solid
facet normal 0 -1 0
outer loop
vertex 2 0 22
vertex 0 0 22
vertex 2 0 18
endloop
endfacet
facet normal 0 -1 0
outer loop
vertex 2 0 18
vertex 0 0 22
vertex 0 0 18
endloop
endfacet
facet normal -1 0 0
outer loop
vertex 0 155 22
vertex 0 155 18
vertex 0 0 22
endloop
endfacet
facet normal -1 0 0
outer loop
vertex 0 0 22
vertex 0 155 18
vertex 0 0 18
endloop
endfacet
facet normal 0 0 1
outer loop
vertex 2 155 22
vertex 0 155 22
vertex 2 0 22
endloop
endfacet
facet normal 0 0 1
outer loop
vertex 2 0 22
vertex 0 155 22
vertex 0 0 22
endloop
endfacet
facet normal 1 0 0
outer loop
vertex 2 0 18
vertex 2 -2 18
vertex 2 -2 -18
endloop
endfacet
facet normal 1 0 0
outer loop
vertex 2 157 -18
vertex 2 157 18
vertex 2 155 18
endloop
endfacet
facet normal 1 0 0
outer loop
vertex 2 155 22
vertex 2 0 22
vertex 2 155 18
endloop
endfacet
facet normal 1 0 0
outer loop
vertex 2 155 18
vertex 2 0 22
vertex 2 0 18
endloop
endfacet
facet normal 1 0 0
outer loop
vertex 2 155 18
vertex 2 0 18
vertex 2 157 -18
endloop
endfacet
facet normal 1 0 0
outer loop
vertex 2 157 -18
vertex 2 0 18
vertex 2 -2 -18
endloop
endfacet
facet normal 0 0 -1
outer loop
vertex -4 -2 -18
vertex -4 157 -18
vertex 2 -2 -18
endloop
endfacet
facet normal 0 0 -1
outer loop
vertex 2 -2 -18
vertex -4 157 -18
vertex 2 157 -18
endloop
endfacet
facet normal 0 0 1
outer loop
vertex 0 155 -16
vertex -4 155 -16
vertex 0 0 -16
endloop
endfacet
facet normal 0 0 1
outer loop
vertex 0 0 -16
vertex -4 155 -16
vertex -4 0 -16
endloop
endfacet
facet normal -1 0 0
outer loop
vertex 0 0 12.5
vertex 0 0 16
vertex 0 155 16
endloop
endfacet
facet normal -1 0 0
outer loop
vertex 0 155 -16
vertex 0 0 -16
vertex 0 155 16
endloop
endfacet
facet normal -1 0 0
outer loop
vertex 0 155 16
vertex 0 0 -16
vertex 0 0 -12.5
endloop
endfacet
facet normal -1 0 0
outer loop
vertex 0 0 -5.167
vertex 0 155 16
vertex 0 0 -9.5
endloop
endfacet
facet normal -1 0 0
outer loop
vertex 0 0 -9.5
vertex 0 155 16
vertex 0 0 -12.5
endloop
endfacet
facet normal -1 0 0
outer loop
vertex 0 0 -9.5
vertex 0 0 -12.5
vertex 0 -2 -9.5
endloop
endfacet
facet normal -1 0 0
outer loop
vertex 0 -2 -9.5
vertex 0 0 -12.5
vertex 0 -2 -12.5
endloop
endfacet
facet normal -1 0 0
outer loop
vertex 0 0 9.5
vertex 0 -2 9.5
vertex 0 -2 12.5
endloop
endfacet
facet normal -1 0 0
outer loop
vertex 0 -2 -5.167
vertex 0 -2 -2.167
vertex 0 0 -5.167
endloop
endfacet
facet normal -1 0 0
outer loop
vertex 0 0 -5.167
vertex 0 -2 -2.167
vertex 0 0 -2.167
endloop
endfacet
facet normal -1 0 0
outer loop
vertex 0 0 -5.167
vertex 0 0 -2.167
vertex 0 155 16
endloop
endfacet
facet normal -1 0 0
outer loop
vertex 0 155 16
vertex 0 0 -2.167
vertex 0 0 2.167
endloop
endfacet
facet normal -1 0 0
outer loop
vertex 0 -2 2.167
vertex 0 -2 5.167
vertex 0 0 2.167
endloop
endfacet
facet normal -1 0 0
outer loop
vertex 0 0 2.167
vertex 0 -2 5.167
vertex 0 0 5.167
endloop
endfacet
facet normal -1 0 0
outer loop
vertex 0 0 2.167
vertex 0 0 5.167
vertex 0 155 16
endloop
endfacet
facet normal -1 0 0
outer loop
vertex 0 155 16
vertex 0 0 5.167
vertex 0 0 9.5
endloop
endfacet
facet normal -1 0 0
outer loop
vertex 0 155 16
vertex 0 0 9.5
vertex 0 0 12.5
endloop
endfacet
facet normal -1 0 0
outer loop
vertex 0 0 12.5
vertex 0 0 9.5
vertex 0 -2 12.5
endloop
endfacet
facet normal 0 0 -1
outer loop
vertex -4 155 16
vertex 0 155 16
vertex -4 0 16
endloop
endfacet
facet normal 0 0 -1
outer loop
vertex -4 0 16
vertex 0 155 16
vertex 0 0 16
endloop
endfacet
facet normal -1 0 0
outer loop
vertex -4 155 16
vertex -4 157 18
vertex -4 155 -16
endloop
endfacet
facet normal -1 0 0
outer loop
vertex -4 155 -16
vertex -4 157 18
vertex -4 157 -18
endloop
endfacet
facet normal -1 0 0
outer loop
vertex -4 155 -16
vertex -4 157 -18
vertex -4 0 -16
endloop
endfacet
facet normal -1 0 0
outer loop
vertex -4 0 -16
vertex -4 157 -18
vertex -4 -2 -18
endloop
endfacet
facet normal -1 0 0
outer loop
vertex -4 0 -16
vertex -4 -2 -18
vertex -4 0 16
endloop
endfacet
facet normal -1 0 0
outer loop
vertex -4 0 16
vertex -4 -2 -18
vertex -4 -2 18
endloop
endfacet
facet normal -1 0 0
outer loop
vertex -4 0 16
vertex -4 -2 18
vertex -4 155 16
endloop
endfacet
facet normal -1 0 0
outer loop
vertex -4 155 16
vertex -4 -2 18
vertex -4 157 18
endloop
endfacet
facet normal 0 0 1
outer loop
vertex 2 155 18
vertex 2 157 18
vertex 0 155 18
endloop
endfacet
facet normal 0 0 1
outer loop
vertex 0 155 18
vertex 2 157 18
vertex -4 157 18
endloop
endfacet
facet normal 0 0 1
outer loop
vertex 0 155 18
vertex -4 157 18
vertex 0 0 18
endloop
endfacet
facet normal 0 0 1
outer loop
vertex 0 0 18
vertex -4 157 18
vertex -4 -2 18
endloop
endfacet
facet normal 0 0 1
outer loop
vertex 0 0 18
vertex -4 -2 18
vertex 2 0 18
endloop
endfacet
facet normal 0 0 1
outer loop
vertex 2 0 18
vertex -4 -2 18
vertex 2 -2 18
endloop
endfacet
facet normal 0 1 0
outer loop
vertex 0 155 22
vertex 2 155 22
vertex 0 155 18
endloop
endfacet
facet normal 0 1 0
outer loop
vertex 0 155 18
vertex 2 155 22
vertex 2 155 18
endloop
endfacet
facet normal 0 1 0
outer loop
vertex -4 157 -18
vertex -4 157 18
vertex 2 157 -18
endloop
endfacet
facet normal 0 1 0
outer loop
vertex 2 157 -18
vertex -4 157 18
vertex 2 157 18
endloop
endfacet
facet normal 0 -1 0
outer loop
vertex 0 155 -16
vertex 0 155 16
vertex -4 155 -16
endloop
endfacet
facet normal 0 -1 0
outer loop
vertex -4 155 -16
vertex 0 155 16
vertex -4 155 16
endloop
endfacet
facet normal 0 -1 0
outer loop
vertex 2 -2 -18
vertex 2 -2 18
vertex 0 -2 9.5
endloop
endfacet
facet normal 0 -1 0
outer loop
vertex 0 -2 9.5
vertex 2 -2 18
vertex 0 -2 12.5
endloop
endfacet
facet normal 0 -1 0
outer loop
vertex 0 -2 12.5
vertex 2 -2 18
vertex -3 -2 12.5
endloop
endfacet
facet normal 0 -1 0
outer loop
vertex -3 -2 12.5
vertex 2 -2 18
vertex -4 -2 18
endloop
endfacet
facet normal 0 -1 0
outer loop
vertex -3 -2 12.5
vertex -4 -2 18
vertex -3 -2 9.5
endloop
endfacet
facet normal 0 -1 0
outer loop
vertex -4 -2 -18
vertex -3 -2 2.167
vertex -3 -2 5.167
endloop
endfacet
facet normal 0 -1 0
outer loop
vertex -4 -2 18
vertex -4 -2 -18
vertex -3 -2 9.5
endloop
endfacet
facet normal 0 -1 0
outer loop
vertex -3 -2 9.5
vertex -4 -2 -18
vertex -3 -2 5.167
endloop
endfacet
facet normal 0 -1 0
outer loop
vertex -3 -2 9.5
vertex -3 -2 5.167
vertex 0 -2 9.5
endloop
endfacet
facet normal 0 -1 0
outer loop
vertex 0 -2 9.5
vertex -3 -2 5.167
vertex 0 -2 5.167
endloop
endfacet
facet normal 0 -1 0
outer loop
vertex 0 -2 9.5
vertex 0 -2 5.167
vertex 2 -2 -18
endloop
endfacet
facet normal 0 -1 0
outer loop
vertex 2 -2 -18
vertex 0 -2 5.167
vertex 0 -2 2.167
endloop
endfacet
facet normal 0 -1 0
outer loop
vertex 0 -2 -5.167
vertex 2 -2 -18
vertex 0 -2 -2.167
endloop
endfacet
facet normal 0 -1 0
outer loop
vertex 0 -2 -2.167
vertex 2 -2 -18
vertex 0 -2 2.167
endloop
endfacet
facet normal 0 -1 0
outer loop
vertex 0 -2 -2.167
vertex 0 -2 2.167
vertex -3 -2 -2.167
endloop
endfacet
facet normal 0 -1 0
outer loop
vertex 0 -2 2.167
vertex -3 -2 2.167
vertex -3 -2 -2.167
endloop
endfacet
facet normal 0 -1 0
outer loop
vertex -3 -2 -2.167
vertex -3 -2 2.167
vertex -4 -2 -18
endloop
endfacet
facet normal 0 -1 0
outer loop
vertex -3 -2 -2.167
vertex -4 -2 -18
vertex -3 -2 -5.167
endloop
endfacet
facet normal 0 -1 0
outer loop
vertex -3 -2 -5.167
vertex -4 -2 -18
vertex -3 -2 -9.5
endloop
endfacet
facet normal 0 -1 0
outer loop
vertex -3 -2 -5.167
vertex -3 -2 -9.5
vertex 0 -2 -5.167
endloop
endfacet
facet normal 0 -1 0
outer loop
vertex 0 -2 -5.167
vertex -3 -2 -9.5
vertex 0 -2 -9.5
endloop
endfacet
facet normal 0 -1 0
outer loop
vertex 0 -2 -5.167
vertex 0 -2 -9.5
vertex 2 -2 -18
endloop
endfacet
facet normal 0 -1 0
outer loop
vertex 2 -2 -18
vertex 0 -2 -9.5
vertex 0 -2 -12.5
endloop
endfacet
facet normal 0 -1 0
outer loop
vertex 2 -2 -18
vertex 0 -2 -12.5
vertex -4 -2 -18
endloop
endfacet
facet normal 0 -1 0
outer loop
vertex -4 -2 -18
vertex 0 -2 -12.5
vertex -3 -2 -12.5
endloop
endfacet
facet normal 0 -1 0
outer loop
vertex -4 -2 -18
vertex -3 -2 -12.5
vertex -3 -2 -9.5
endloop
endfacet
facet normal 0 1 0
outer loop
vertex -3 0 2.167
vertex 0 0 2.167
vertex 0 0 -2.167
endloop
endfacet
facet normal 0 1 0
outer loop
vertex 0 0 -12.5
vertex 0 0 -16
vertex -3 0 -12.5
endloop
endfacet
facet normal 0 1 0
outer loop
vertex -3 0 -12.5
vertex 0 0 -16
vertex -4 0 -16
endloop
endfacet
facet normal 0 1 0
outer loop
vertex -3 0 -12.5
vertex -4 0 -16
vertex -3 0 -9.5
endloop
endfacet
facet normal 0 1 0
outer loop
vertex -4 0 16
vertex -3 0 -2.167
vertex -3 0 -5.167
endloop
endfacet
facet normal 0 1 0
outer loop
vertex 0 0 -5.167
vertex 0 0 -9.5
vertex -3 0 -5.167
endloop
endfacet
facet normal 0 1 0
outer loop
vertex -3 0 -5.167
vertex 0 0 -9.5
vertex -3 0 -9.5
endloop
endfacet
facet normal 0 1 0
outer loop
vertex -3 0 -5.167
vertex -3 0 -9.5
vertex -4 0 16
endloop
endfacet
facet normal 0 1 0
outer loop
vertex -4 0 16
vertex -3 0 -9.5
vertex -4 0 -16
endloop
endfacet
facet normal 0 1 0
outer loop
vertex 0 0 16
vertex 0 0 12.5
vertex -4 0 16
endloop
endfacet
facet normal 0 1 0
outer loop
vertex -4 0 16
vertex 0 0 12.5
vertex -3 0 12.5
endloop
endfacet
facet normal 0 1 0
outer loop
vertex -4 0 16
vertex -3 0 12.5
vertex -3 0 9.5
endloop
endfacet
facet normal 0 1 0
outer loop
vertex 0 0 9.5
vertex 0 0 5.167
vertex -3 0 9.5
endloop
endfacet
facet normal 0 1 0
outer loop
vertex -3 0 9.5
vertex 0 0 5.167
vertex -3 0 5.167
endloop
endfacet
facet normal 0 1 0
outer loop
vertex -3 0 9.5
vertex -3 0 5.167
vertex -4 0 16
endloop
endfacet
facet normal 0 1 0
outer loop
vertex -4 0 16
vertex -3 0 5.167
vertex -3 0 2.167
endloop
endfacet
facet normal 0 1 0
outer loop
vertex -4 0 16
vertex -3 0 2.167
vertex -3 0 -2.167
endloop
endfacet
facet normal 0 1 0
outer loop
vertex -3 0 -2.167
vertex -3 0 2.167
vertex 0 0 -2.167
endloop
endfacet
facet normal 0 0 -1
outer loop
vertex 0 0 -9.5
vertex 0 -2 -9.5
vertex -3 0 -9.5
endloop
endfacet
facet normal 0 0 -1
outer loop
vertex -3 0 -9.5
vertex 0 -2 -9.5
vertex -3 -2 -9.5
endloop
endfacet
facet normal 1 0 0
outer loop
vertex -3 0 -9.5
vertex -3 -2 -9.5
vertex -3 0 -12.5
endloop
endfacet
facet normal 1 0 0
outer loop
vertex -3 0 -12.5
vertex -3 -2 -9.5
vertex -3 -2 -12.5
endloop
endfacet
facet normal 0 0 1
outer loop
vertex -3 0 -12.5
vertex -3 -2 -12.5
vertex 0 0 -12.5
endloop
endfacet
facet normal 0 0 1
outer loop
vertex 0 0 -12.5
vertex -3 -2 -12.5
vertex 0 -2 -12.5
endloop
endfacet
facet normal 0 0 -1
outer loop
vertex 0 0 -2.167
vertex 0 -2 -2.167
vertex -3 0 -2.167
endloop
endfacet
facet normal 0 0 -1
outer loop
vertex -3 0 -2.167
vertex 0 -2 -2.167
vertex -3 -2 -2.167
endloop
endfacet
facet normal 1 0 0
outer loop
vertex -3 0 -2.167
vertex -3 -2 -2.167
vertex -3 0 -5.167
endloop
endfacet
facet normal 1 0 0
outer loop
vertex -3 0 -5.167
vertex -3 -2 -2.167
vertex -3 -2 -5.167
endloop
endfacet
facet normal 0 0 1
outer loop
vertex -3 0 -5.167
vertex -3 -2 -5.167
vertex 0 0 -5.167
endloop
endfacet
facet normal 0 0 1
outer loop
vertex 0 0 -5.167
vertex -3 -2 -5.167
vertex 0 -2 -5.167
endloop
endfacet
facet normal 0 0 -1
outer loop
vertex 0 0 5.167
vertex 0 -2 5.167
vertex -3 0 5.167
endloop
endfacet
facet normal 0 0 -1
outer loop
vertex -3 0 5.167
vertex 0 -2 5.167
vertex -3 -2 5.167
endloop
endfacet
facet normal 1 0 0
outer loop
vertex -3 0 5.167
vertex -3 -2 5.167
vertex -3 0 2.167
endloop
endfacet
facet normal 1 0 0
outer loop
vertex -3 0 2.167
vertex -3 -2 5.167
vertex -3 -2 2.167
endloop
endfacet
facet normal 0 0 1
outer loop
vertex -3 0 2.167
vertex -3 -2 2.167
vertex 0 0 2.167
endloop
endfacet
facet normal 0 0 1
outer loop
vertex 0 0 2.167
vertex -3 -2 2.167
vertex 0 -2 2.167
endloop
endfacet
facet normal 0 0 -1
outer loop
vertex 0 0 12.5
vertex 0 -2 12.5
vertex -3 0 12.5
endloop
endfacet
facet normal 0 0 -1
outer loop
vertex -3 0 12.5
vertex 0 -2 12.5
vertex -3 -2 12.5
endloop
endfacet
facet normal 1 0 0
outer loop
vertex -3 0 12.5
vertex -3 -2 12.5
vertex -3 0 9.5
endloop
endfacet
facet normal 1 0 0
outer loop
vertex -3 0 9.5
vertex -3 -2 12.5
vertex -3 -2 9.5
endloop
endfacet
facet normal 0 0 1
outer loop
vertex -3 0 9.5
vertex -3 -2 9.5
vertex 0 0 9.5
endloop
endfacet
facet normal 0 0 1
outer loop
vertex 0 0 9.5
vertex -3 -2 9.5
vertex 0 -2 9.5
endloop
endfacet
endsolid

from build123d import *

# Parameters (mm, degrees)
BOSS_EXTRUDE1_DEPTH = 155
SKETCH2_W           = 6
SKETCH2_H           = 36
BOSS_EXTRUDE2_DEPTH = 2
SKETCH3_W           = 6
SKETCH3_H           = 36
BOSS_EXTRUDE3_DEPTH = 2
CUT_EXTRUDE1_REACH  = 160.584
SKETCH4_W           = 3
SKETCH4_H           = 3


with BuildPart() as part:
    # Sketch1 → Boss-Extrude1 (new body)
    with BuildSketch(Plane(origin=(0, 0, 0), x_dir=(1, 0, 0), z_dir=(0, 1, 0))):
        Polygon((0, -16), (0, 16), (-4, 16), (-4, 18), (2, 18), (2, -18), (2, -22), (0, -22), (0, -18), (-4, -18), (-4, -16), align=None)
    extrude(amount=BOSS_EXTRUDE1_DEPTH)

    # Sketch2 → Boss-Extrude2 (add)
    with BuildSketch(Plane(origin=(0, 155, 0), x_dir=(1, 0, 0), z_dir=(0, 1, 0))):
        with Locations((-1, 0)):
            Rectangle(SKETCH2_W, SKETCH2_H)
    extrude(amount=BOSS_EXTRUDE2_DEPTH)

    # Sketch3 → Boss-Extrude3 (add)
    with BuildSketch(Plane.XZ):
        with Locations((-1, 0)):
            Rectangle(SKETCH3_W, SKETCH3_H)
    extrude(amount=BOSS_EXTRUDE3_DEPTH)

    # Sketch4 → Cut-Extrude1 (cut, up to next)
    with BuildSketch(Plane(origin=(0, 0, 0), x_dir=(1, 0, 0), z_dir=(0, 1, 0)), mode=Mode.PRIVATE) as cut_extrude1_sk1:
        with Locations((-1.5, -11)):
            Rectangle(SKETCH4_W, SKETCH4_H)
    cut_extrude1_tool1 = extrude(cut_extrude1_sk1.sketch, amount=-CUT_EXTRUDE1_REACH, mode=Mode.PRIVATE) & part.part
    # Sketch4 → Cut-Extrude1 (cut, up to next)
    with BuildSketch(Plane(origin=(0, 0, 0), x_dir=(1, 0, 0), z_dir=(0, 1, 0)), mode=Mode.PRIVATE) as cut_extrude1_sk2:
        with Locations((-1.5, -3.666666667)):
            Rectangle(SKETCH4_W, SKETCH4_H)
    cut_extrude1_tool2 = extrude(cut_extrude1_sk2.sketch, amount=-CUT_EXTRUDE1_REACH, mode=Mode.PRIVATE) & part.part
    # Sketch4 → Cut-Extrude1 (cut, up to next)
    with BuildSketch(Plane(origin=(0, 0, 0), x_dir=(1, 0, 0), z_dir=(0, 1, 0)), mode=Mode.PRIVATE) as cut_extrude1_sk3:
        with Locations((-1.5, 3.666666667)):
            Rectangle(SKETCH4_W, SKETCH4_H)
    cut_extrude1_tool3 = extrude(cut_extrude1_sk3.sketch, amount=-CUT_EXTRUDE1_REACH, mode=Mode.PRIVATE) & part.part
    # Sketch4 → Cut-Extrude1 (cut, up to next)
    with BuildSketch(Plane(origin=(0, 0, 0), x_dir=(1, 0, 0), z_dir=(0, 1, 0)), mode=Mode.PRIVATE) as cut_extrude1_sk4:
        with Locations((-1.5, 11)):
            Rectangle(SKETCH4_W, SKETCH4_H)
    cut_extrude1_tool4 = extrude(cut_extrude1_sk4.sketch, amount=-CUT_EXTRUDE1_REACH, mode=Mode.PRIVATE) & part.part
    add(cut_extrude1_tool1.solids().sort_by_distance((-1.5, 0, 11))[0], mode=Mode.SUBTRACT)
    add(cut_extrude1_tool2.solids().sort_by_distance((-1.5, 0, 3.666667))[0], mode=Mode.SUBTRACT)
    add(cut_extrude1_tool3.solids().sort_by_distance((-1.5, 0, -3.666667))[0], mode=Mode.SUBTRACT)
    add(cut_extrude1_tool4.solids().sort_by_distance((-1.5, 0, -11))[0], mode=Mode.SUBTRACT)


solid = part.part
